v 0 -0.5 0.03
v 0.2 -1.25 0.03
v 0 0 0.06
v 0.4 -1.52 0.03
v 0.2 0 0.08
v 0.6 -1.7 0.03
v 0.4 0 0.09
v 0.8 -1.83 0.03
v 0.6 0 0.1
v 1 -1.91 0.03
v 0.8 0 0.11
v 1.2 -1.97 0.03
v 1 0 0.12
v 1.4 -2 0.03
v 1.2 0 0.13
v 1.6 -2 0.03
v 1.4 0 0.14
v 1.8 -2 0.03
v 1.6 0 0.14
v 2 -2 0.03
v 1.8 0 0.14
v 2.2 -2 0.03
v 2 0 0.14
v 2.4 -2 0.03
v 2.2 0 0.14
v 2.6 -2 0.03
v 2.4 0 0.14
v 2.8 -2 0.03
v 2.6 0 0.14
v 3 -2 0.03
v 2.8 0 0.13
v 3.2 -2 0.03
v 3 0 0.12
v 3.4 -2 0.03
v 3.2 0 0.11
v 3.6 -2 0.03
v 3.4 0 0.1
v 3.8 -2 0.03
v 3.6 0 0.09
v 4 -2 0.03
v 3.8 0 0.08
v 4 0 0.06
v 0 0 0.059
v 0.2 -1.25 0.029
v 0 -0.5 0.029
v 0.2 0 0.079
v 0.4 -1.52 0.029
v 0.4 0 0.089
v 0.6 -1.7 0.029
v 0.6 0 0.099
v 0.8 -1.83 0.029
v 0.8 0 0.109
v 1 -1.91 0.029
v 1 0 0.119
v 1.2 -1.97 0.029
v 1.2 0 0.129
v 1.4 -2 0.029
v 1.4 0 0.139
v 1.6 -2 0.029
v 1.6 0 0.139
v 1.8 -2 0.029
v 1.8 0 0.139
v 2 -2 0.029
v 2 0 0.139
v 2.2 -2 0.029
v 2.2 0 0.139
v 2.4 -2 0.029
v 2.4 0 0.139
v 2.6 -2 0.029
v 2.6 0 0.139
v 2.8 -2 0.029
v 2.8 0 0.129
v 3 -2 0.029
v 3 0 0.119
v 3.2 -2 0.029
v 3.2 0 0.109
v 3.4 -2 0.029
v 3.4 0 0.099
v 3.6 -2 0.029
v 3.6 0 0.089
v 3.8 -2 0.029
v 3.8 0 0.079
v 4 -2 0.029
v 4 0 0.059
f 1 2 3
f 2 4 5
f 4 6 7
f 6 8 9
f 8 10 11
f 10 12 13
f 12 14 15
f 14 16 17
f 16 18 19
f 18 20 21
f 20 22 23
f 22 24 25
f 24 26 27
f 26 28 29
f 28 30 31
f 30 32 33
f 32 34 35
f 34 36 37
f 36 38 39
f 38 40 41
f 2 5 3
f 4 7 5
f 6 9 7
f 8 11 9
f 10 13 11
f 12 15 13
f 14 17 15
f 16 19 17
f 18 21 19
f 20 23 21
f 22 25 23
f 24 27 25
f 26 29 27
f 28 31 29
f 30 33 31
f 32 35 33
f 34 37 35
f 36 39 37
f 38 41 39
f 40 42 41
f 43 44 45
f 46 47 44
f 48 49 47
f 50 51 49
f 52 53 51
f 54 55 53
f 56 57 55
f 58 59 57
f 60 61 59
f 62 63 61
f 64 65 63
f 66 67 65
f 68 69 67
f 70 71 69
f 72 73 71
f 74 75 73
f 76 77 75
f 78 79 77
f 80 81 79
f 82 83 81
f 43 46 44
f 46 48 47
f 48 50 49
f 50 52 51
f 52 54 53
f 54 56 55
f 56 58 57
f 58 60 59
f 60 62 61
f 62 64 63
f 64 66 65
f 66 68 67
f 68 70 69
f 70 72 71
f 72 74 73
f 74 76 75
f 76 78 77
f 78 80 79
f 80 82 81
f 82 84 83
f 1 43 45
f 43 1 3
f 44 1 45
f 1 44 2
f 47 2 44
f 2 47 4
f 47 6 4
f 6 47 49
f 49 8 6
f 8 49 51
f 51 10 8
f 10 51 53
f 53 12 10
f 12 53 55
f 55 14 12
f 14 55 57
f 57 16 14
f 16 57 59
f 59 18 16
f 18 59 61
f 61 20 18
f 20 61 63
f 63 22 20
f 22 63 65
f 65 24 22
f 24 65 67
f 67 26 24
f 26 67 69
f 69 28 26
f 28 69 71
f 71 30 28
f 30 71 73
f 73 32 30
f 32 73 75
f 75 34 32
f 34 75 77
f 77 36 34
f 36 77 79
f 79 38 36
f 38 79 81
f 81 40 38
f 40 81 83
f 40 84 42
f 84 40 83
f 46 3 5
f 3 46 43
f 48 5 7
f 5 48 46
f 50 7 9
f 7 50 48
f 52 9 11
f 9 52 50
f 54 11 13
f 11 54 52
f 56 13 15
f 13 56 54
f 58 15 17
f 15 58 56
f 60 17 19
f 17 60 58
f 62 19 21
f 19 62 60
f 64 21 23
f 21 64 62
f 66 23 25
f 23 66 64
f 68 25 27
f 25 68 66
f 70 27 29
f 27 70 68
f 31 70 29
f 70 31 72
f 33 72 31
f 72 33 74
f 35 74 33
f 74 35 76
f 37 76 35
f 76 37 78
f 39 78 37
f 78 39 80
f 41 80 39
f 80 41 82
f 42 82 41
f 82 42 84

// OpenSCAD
// file: MMlib/__comm__/__nearest_multiple_of_4.scad
function __nearest_multiple_of_4(n) =
    let(remain = n % 4)
    remain > 1 ? n - remain + 4 : n - remain;
// file: MMlib/__comm__/__frags.scad
function __frags(radius) = 
    $fn == 0 ?  
        max(min(360 / $fa, radius * 6.283185307179586 / $fs), 5) :
        max($fn, 3);
// file: MM/slice_vector.scad
/// vector の部分 vector を取得
/// @param begin 取得したい部分 vector の先頭位置
/// @param end   取得したい部分 vector の終端位置
/// @param internal_buffer 内部バッファー ( 明示的に引数として与える必要はありません )
function slice_vector( v, begin = 0, end = 0, internal_buffer = [ ] ) = 
  let( end = end > begin ? end : begin )
    begin == end
      ? internal_buffer
      : concat( [ v[ begin ] ], slice_vector( v, begin + 1, end, internal_buffer ) )
  ;
// file: MMlib/line3d.scad
/**
* line3d.scad
*
* @copyright Justin Lin, 2017
* @license https://opensource.org/licenses/lgpl-3.0.html
*
* @see https://openhome.cc/eGossip/OpenSCAD/lib3x-line3d.html
*
**/

use <./__comm__/__frags.scad>
use <./__comm__/__nearest_multiple_of_4.scad>

module line3d(p1, p2, diameter = 1, p1Style = "CAP_CIRCLE", p2Style = "CAP_CIRCLE") {
    r = diameter / 2;

    frags = __nearest_multiple_of_4(__frags(r));
    half_fa = 180 / frags;
    
    v = p2 - p1;
    length = norm(v);
    ay = 90 - atan2(v.z, norm([v.x, v.y]));
    az = atan2(v.y, v.x);

    angles = [0, ay, az];

    module cap_with(p) { 
        translate(p) 
        rotate(angles) 
            children();  
    } 

    module cap_butt() {
        cap_with(p1)                 
        linear_extrude(length) 
            circle(r, $fn = frags);
        
        // hook for testing
        test_line3d_butt(p1, r, frags, length, angles);
    }

    module cap(p, style) {
        if(style == "CAP_CIRCLE") {
            cap_leng = r / 1.414;
            cap_with(p) 
            linear_extrude(cap_leng * 2, center = true) 
                circle(r, $fn = frags);

            // hook for testing
            test_line3d_cap(p, r, frags, cap_leng, angles);
        } else if(style == "CAP_SPHERE") { 
            cap_leng = r / cos(half_fa);
            cap_with(p)
                sphere(cap_leng, $fn = frags);  
            
            // hook for testing
            test_line3d_cap(p, r, frags, cap_leng, angles);
        }            
    }


    cap_butt();
    cap(p1, p1Style);
    cap(p2, p2Style);
}

// Override them to test
module test_line3d_butt(p, r, frags, length, angles) {

}

module test_line3d_cap(p, r, frags, cap_leng, angles) {
    
}
// file: MM/pop_vector_block.scad
include <slice_vector.scad>

/// vector の末尾要素から length 個の要素を並び順のまま取得
function pop_vector_block( v, length = 0 ) = 
  let( end = len( v ) )
    slice_vector( v, end - length, end )
  ;
// file: MM/shift_vector.scad
include <slice_vector.scad>

/// vector の先頭から length 個の部分要素を取得
function shift_vector( v, length = 0 ) = 
  slice_vector( v, 0, length )
  ;
// file: MMlib/hull_polyline3d.scad
/**
* hull_polyline3d.scad
*
* @copyright Justin Lin, 2017
* @license https://opensource.org/licenses/lgpl-3.0.html
*
* @see https://openhome.cc/eGossip/OpenSCAD/lib3x-hull_polyline3d.html
*
**/

module hull_polyline3d(points, diameter = 1) {
    echo("`hull_polyline3d` is deprecated since 3.2. Use `polyline_join` instead.");
    
    radius = diameter / 2;
    leng = len(points);
    
    module hull_line3d(index) {
        point1 = points[index - 1];
        point2 = points[index];

        hull() {
            translate(point1) 
                children();
            translate(point2) 
                children();
        }

        // hook for testing
        test_hull_polyline3d_line_segment(index, point1, point2, radius);        
    }

    for(i = [1:leng - 1]) {
        hull_line3d(i)
            sphere(radius);
    }
}

// override it to test
module test_hull_polyline3d_line_segment(index, point1, point2, radius) {

}
// file: MMlib/polyline3d.scad
/**
* polyline3d.scad
*
* @copyright Justin Lin, 2017
* @license https://opensource.org/licenses/lgpl-3.0.html
*
* @see https://openhome.cc/eGossip/OpenSCAD/lib3x-polyline3d.html
*
**/

use <./line3d.scad>

module polyline3d(points, diameter, startingStyle = "CAP_CIRCLE", endingStyle = "CAP_CIRCLE") {
    leng_pts = len(points);
    
    s_styles = [startingStyle, "CAP_BUTT"];
    e_styles = ["CAP_SPHERE", endingStyle];
    default_styles = ["CAP_SPHERE", "CAP_BUTT"];

    module line_segment(index) {
        styles = index == 1 ? s_styles : 
                 index == leng_pts - 1 ? e_styles : 
                 default_styles;

        p1 = points[index - 1];
        p2 = points[index];
        p1Style = styles[0];
        p2Style = styles[1];        
        
        line3d(p1, p2, diameter, 
               p1Style = p1Style, p2Style = p2Style);       
    }

    if(leng_pts == 2) {
        line3d(points[0], points[1], diameter, startingStyle, endingStyle);
    }
    else {
        for(i = [1:leng_pts - 1]) {
            line_segment(i);
        }
    }
}
// file: MM/reverse.scad
include <shift_vector.scad>
include <pop_vector_block.scad>

/// vector を逆順で取得
/// @param v 逆順にしたい元の vector
/// @param internal_buffer 内部バッファー ( 明示的に引数として与える必要はありません )
function reverse( v, internal_buffer = [ ] ) = 
  len( v ) == 0
    ? internal_buffer
    : reverse(  shift_vector( v, len( v ) - 1 ) , concat( internal_buffer, pop_vector_block( v, 1 ) ) )
  ;
// file: colors.scad
// colors.scad
// Credit: David Powell, OpenSCAN Forum



//group ABS_<colorname>
//	discription  common 3d printer ABS filament colors
// actual colours may need some tweaking

ABS_Nature =[0.8,0.8,0.8,0.8];
ABS_White =[0.9,0.9,0.9,1];
ABS_Black =[0.1,0.1,0.1,1];
ABS_Red = [0.7,0,0,1];
ABS_Green = [0,0.7,0,1];
ABS_Blue = [0,0,0.7,1];
ABS_Orange =[0.8,0.4,0,1];
ABS_Purple =[0.7,0,0.7,1];
ABS_Brown =[0.6,0.2,0.2,1];
ABS_Glow_Blue =[0,0,.99,1];
ABS_Flurescence_Green =[0,1,0,1];
ABS_Flurescence_Yellow = [0.9,0.9,0,1];

//group PLA_<colorname>
//	discription  common 3d printer PLA filament colors
// actual colours may need some tweaking

PLA_Nature =[0.8,0.8,0.8,0.8];
PLA_White =[0.9,0.9,0.9,1];
PLA_Black =[0.1,0.1,0.1,1];
PLA_Red = [0.7,0,0,1];
PLA_Green = [0,0.7,0,1];
PLA_Blue = [0,0,0.7,1];
PLA_Orange =[0.8,0.4,0,1];
PLA_Purple =[0.7,0,0.7,1];
PLA_Brown =[0.6,0.2,0.2,1];
PLA_Glow_Blue =[0,0,.99,1];
PLA_Flurescence_Green =[0,1,0,1];
PLA_Flurescence_Yellow = [0.9,0.9,0,1];

//group ANODIZED_<colorname>
//	discription  common aluminium anodized colors
// these don't seem to follow normal color tables as the process
// produces a color change difference to the named color
// dew to base metal
// actual colours may need some tweaking

ANODIZED_Red =[0.7,0,0,1];
ANODIZED_Gold =[0.8,0.8,0.0,1];
ANODIZED_Black =[0.1,0.1,0.1,1];
ANODIZED_Blue =[0,0,0.7,1];
ANODIZED_Green =[0,0.5,0,1];
ANODIZED_Gray =[0.4,0.4,0.4,1];
ANODIZED_Dark_Blue =[0,0.2,0.6,1];
ANODIZED_Lime_Green =[0,0.8,0,1];
ANODIZED_Purple =[0.5,0,0.7,1];		//more blue than purple
ANODIZED_Light_Blue =[0.4,0.4,1,1];
ANODIZED_Pink =[0.7,0,0.7,1];		//more purlpe than pink
ANODIZED_Orange =[0.9,0.5,0,1];
ANODIZED_Scandia_Gold =[0.9,0.6,0.3,1];
ANODIZED_Copper =[0.7,0.5,0,1];		//more brown than copper
ANODIZED_Clear =[0.7,0.7,0.9,1];	//natural aluminium color
ANODIZED_Light_Bronze =[0.4,0.4,0.3,1]; //more silver than bronze
ANODIZED_Gold_Nickel =[0.8,0.8,0.6,1];
ANODIZED_Brush_Nickel =[0.8,0.8,0.7,1];

//group METAL_<typename>
//	discription common metal colors
// colors need tweaking

METAL_Aluminium = [0.7,0.7,0.8,1];
METAL_Brass = [0.88,0.78,0.5,1];
METAL_Copper = [0.9,0.6,0.5,1];
METAL_Steel = [0.9,0.9,0.8,1];
METAL_Stainless = [0.8,0.8,0.7,1];
METAL_Titanium = [0.7,0.7,0.6,1];
METAL_Bronze = [0.9,0.4,0.4,1];
METAL_Gold = [0.9,0.9,0.0,1];
METAL_Silver = [0.8,0.8,0.8,1];
METAL_Iron = [0.6,0.6,0.6,1];

// group WOOD_<typename>
//	discription common wood colors
// probabaly wrong

WOOD_Oak = [0.4,0.2,0.2,1];
WOOD_Birch = [0.8,0.8,0.4,1];
WOOD_Red = [0.7,0.3,0.3,1];
WOOD_pine = [0.8,0.8,0.4,1];
WOOD_Beach = [0.8,0.6,0.3,1];
WOOD_Spruce = [0.8,0.8,0.7,1];
WOOD_Balsa = [0.95,0.86,0.73];

// group GLASS_<color>
//	discription common glass colors
// needs tweaking

GLASS_Clear = [0.8,0.8,0.8,0.2];
GLASS_Red = [0.8,0,0,0.4];
GLASS_Green = [0,0.8,0,.4];
GLASS_Blue = [0,0,0.8,.4];
GLASS_Brown = [0.5,0.3,0.1,.4];

CONCRETE = [210/255, 209/255, 205/255];
// file: cover_points.scad
g_pts = [
    [
        [0.00, 0.00, 0.06],[0.00, -0.50, 0.03]
    ],
    [
        [0.20, -0.00, 0.08],[0.20, -1.25, 0.03]
    ],
    [
        [0.40, -0.00, 0.09],[0.40, -1.52, 0.03]
    ],
    [
        [0.60, -0.00, 0.10],[0.60, -1.70, 0.03]
    ],
    [
        [0.80, -0.00, 0.11],[0.80, -1.83, 0.03]
    ],
    [
        [1.00, -0.00, 0.12],[1.00, -1.91, 0.03]
    ],
    [
        [1.20, -0.00, 0.13],[1.20, -1.97, 0.03]
    ],
    [
        [1.40, -0.00, 0.14],[1.40, -2.00, 0.03]
    ],
    [
        [1.60, -0.00, 0.14],[1.60, -2.00, 0.03]
    ],
    [
        [1.80, -0.00, 0.14],[1.80, -2.00, 0.03]
    ],
    [
        [2.00, -0.00, 0.14],[2.00, -2.00, 0.03]
    ],
    [
        [2.20, -0.00, 0.14],[2.20, -2.00, 0.03]
    ],
    [
        [2.40, -0.00, 0.14],[2.40, -2.00, 0.03]
    ],
    [
        [2.60, -0.00, 0.14],[2.60, -2.00, 0.03]
    ],
    [
        [2.80, -0.00, 0.13],[2.80, -2.00, 0.03]
    ],
    [
        [3.00, -0.00, 0.12],[3.00, -2.00, 0.03]
    ],
    [
        [3.20, -0.00, 0.11],[3.20, -2.00, 0.03]
    ],
    [
        [3.40, -0.00, 0.10],[3.40, -2.00, 0.03]
    ],
    [
        [3.60, -0.00, 0.09],[3.60, -2.00, 0.03]
    ],
    [
        [3.80, -0.00, 0.08],[3.80, -2.00, 0.03]
    ],
    [
        [4.00, 0.00, 0.06],[4.00, -2.00, 0.03]
    ]
];
// main file
use <function_grapher.scad>;
include <cover_points.scad>
include <colors.scad>

thickness = 0.001;
style = "FACES";  // LINES to show surface grid

module covering() {
  color(GLASS_Blue)
  function_grapher(g_pts, thickness, style);
}

covering();
